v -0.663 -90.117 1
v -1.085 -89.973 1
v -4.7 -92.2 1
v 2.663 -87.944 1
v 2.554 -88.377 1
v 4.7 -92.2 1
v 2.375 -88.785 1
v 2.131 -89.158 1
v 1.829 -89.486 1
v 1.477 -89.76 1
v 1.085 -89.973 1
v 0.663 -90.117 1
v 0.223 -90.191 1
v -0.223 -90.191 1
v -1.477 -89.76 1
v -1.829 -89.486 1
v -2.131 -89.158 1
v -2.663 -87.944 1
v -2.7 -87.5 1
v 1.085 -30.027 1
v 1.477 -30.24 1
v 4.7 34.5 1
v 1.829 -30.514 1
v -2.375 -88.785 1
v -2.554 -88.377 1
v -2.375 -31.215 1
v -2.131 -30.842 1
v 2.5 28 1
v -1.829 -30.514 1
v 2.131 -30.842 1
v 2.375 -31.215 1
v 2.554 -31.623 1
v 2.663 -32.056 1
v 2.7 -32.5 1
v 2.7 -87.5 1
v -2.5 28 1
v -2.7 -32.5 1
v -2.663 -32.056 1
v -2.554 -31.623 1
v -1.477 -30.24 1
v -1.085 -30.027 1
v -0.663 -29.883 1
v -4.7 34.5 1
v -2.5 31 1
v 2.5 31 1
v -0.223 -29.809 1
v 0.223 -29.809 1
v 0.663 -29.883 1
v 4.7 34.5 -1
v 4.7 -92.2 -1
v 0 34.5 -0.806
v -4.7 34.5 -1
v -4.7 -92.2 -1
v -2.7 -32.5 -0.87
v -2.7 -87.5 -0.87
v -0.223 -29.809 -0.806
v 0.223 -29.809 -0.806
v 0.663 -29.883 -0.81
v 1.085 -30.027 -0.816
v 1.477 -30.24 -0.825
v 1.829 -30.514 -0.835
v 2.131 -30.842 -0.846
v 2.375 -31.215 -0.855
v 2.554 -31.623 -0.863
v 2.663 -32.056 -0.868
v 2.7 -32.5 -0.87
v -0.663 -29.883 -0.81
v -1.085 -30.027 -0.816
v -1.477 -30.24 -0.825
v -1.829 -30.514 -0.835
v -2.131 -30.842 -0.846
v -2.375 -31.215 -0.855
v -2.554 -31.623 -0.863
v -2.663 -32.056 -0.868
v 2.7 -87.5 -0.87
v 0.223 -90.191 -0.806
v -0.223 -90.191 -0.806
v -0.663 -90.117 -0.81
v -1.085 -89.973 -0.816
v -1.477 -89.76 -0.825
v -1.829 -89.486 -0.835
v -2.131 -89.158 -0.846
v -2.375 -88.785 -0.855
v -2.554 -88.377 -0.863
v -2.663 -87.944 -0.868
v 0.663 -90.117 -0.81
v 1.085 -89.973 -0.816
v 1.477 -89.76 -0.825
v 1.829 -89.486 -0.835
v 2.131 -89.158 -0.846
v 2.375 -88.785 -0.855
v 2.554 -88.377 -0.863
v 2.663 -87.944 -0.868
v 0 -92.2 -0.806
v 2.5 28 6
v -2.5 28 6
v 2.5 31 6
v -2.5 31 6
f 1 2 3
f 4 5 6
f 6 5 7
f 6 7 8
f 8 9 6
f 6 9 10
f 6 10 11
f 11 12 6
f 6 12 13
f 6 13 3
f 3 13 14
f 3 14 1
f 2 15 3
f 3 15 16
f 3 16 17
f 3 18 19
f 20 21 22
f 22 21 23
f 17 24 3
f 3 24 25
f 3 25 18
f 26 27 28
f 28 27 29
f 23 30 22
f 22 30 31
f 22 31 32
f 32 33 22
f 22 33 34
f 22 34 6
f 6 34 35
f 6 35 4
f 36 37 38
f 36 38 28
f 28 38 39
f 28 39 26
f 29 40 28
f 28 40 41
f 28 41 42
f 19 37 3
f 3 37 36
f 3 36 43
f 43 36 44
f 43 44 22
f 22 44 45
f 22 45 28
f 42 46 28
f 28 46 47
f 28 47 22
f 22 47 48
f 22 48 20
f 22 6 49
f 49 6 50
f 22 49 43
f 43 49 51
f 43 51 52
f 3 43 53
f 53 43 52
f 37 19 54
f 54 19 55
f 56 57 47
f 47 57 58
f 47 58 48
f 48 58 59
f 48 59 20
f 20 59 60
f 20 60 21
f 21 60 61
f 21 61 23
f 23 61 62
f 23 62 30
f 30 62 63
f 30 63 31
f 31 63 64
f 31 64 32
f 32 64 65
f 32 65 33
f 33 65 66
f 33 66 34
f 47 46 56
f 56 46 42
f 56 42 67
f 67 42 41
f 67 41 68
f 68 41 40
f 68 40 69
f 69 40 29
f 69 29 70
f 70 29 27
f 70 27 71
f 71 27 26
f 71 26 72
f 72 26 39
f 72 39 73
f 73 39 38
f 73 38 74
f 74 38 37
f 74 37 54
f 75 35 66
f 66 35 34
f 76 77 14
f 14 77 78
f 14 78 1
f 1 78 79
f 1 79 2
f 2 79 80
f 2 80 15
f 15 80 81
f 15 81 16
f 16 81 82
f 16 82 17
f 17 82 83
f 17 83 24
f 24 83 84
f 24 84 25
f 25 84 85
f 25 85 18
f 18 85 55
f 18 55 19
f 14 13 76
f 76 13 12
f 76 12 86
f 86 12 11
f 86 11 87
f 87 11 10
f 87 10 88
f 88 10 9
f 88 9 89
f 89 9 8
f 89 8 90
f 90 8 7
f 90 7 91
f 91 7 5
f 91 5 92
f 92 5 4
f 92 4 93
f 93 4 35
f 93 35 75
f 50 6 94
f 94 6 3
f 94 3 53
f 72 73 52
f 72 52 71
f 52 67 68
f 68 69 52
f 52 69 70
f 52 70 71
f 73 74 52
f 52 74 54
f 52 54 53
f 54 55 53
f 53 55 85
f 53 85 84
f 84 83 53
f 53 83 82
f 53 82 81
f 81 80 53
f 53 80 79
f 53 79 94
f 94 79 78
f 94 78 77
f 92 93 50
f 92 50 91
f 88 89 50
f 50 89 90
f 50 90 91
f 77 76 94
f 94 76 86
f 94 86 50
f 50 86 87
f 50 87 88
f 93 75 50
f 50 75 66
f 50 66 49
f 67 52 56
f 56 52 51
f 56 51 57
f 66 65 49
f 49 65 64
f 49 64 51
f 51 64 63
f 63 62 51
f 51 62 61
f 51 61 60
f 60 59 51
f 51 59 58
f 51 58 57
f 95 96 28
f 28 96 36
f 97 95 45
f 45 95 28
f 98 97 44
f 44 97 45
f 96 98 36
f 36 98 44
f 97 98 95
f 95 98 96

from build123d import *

# Parameters (mm, degrees)
SKETCH1_W               = 9.4
SKETCH1_H               = 126.7
BOSS_EXTRUDE1_DEPTH     = 1
CUT_EXTRUDE2_DEPTH      = 35.5
CUT_EXTRUDE2_DEPTH_BACK = 93.2
SKETCH3_W               = 5
SKETCH3_H               = 3
BOSS_EXTRUDE2_DEPTH     = 5


with BuildPart() as part:
    # Sketch1 → Boss-Extrude1 (new body, symmetric)
    with BuildSketch(Plane.XY):
        with Locations((0, -28.85)):
            Rectangle(SKETCH1_W, SKETCH1_H)
        with BuildLine():
            ThreePointArc((-2.7, -32.5), (0, -29.8), (2.7, -32.5))
            Line((2.7, -32.5), (2.7, -87.5))
            ThreePointArc((2.7, -87.5), (0, -90.2), (-2.7, -87.5))
            Line((-2.7, -87.5), (-2.7, -32.5))
        make_face(mode=Mode.SUBTRACT)
    extrude(amount=BOSS_EXTRUDE1_DEPTH, both=True)

    # Sketch2 → Cut-Extrude2 (cut, two sides)
    with BuildSketch(Plane(origin=(0, 0, 0), x_dir=(1, 0, 0), z_dir=(0, 1, 0))) as cut_extrude2_sk:
        with BuildLine():
            ThreePointArc((-4.7, 1), (0, 0.805897581), (4.7, 1))
            Line((4.7, 1), (-4.7, 1))
        make_face()
        with BuildLine():
            Line((-4.7, 1), (4.7, 1))
            ThreePointArc((4.7, 1), (41.93387652, 19.198255851), (57, 57.805897581))
            ThreePointArc((57, 57.805897581), (-38.607641731, 99.739774101), (-4.7, 1))
        make_face()
    extrude(amount=CUT_EXTRUDE2_DEPTH, mode=Mode.SUBTRACT)
    extrude(cut_extrude2_sk.sketch, amount=-CUT_EXTRUDE2_DEPTH_BACK, mode=Mode.SUBTRACT)

    # Sketch3 → Boss-Extrude2 (add)
    with BuildSketch(Plane.XY.offset(1)):
        with Locations((0, 29.5)):
            Rectangle(SKETCH3_W, SKETCH3_H)
    extrude(amount=BOSS_EXTRUDE2_DEPTH)


solid = part.part
